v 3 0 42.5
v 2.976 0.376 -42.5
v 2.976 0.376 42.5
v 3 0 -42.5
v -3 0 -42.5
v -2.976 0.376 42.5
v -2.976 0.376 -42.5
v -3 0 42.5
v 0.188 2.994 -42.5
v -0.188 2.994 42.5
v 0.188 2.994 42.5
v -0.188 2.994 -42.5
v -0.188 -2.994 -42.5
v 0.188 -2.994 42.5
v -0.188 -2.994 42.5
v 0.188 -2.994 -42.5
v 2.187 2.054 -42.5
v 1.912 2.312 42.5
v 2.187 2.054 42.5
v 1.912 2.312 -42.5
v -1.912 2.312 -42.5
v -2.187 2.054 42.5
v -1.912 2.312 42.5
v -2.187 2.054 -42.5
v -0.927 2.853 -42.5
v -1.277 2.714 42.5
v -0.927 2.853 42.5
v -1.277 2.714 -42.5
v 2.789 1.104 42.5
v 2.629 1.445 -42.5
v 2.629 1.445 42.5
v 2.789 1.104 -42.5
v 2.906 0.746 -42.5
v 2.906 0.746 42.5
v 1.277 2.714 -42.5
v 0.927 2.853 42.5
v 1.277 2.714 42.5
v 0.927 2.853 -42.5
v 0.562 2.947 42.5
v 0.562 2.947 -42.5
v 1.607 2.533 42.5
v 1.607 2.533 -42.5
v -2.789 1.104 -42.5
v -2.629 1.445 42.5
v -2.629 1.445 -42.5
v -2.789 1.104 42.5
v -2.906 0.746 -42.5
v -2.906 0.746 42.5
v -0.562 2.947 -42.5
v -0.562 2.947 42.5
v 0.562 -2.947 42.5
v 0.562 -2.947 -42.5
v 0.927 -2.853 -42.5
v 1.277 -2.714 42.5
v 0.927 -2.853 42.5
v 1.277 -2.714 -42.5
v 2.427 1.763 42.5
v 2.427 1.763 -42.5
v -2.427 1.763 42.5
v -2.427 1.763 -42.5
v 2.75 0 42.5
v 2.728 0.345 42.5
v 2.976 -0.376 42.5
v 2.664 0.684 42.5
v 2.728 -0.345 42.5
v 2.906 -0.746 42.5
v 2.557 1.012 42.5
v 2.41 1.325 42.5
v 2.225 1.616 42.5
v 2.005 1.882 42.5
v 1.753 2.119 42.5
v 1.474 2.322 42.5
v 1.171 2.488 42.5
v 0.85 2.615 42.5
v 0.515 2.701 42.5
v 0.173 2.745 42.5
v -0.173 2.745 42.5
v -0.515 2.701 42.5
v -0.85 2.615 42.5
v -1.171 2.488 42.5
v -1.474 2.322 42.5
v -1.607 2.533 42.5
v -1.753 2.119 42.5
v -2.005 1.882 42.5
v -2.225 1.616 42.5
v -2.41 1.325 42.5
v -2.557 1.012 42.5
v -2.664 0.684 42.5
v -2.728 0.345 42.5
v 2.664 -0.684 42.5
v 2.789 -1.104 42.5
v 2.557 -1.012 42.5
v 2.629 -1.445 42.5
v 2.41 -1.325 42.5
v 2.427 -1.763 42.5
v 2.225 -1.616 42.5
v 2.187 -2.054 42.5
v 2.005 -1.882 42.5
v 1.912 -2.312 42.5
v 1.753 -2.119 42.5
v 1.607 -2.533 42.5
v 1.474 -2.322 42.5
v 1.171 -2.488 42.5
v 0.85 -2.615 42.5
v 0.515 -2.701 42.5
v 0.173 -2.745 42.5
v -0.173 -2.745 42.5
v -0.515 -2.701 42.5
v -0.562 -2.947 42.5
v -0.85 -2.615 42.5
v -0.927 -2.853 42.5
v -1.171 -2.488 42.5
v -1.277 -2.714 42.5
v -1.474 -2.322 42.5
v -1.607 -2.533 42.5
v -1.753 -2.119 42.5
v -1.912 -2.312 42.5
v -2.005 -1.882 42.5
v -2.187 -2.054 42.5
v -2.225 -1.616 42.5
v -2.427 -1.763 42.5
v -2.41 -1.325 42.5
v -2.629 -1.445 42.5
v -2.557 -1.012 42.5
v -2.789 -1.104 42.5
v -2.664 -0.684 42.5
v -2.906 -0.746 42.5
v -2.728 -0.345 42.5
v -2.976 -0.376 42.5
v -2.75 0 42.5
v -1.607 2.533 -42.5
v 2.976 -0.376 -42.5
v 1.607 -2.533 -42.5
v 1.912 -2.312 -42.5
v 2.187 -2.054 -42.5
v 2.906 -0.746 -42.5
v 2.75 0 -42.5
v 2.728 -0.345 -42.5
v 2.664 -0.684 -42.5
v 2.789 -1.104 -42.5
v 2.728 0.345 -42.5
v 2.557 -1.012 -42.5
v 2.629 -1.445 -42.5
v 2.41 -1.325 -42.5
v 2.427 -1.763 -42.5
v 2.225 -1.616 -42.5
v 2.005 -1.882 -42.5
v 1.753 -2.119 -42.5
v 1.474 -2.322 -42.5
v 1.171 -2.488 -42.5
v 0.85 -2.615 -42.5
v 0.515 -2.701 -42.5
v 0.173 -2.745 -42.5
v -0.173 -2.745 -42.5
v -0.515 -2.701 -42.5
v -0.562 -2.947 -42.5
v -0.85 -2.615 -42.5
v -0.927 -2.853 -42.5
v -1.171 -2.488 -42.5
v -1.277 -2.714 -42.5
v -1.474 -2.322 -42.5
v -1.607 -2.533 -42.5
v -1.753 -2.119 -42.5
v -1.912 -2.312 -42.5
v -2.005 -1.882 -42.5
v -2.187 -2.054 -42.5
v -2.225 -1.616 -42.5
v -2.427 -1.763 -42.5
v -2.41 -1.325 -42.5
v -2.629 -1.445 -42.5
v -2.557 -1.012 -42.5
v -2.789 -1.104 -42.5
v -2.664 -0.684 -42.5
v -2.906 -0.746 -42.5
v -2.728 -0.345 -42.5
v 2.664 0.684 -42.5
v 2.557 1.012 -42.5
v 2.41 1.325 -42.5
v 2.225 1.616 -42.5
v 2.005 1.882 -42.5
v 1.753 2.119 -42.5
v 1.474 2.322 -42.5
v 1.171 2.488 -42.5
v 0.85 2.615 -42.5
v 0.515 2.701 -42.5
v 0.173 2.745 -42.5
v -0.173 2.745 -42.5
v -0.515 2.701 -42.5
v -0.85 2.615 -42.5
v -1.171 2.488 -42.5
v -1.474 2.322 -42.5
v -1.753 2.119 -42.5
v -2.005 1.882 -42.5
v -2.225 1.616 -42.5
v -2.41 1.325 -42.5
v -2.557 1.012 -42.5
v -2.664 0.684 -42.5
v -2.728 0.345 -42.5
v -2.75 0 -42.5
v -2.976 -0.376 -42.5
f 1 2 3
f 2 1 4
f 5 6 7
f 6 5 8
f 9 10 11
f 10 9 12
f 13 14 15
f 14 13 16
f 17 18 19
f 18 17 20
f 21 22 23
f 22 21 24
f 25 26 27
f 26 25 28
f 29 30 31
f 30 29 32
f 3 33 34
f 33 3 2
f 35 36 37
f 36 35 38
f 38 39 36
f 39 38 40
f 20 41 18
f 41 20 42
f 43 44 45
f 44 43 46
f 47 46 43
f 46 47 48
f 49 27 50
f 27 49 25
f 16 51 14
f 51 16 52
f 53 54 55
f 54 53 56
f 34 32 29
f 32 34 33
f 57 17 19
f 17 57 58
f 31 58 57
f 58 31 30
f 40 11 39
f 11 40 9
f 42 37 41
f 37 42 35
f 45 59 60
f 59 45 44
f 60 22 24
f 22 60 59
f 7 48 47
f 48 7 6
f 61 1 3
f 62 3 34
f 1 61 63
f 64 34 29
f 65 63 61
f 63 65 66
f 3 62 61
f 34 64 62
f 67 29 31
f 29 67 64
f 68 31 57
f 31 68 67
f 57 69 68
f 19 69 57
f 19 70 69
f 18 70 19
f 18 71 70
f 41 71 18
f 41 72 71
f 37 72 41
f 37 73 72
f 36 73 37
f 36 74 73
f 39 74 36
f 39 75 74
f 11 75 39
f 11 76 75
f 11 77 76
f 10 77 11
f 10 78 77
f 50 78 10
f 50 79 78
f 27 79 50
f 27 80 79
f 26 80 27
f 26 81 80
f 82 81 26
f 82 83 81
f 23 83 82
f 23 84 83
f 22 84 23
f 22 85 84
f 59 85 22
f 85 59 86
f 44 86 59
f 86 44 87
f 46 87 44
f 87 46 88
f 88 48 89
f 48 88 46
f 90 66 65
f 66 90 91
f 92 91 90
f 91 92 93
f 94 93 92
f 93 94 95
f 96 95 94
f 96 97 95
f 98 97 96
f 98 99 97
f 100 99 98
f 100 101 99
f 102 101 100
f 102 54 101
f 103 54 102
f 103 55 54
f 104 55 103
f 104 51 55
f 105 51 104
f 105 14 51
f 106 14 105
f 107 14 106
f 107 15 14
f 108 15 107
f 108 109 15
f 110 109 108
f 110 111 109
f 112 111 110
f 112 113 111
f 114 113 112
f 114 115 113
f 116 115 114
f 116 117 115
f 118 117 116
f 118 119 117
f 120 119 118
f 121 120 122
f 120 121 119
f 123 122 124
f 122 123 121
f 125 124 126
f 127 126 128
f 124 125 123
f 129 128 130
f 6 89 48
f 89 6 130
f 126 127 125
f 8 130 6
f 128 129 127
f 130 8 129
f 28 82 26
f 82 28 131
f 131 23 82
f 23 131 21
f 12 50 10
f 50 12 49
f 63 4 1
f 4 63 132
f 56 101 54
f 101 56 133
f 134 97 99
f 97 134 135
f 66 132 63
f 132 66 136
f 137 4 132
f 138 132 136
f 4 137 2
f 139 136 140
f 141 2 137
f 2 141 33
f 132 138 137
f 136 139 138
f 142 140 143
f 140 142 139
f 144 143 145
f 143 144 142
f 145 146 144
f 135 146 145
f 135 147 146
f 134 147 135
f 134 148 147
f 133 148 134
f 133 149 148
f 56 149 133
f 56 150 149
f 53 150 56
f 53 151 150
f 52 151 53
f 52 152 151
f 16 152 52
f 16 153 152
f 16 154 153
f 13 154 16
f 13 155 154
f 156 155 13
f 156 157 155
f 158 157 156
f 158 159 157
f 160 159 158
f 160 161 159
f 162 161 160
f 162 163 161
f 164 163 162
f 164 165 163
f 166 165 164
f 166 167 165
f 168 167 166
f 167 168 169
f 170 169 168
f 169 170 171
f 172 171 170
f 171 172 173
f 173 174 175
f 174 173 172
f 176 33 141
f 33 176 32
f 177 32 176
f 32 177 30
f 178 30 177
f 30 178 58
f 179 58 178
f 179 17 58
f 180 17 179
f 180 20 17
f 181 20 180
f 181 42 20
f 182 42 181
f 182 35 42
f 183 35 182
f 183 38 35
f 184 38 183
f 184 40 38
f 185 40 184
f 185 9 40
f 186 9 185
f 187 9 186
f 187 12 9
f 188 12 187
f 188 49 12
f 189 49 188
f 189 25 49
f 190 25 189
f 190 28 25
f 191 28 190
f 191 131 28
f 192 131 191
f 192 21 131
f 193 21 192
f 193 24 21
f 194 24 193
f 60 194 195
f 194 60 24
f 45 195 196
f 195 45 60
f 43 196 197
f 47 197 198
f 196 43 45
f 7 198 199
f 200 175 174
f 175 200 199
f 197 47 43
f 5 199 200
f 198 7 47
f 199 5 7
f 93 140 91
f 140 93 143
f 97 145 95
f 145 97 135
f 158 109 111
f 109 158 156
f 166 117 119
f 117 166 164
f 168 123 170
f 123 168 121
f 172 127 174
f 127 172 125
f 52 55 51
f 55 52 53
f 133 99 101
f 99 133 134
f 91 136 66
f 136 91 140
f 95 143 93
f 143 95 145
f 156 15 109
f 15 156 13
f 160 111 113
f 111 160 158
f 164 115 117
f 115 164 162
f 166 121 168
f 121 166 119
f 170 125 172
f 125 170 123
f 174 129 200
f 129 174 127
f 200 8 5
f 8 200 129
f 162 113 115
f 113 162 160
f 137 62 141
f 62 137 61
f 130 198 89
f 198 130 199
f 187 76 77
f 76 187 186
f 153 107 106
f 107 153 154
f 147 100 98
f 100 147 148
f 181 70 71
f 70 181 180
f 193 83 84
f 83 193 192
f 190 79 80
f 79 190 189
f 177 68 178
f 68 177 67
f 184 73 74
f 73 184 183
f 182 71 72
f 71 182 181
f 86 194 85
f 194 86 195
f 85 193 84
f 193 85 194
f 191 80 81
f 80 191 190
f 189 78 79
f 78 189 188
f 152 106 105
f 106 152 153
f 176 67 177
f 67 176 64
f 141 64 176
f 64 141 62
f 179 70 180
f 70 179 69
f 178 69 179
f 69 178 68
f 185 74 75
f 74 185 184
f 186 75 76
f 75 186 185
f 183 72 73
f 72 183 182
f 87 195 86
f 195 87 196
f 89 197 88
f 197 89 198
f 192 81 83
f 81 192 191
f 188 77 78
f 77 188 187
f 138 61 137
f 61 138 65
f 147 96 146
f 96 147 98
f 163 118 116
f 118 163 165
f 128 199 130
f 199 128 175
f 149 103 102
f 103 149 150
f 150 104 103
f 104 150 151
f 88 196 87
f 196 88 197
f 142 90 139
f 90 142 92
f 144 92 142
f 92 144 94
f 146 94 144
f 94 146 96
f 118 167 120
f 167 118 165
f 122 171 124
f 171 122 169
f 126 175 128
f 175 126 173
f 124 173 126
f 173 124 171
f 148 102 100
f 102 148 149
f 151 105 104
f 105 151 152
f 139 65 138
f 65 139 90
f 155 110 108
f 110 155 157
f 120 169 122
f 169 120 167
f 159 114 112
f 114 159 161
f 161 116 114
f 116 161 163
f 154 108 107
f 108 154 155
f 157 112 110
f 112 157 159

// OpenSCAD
$fn = 50;


difference() {
	union() {
		translate(v = [0, 0, -42.5000000000]) {
			cylinder(h = 85, r = 3.0000000000);
		}
	}
	union() {
		translate(v = [0, 0, -100.0000000000]) {
			cylinder(h = 200, r = 2.7500000000);
		}
	}
}
